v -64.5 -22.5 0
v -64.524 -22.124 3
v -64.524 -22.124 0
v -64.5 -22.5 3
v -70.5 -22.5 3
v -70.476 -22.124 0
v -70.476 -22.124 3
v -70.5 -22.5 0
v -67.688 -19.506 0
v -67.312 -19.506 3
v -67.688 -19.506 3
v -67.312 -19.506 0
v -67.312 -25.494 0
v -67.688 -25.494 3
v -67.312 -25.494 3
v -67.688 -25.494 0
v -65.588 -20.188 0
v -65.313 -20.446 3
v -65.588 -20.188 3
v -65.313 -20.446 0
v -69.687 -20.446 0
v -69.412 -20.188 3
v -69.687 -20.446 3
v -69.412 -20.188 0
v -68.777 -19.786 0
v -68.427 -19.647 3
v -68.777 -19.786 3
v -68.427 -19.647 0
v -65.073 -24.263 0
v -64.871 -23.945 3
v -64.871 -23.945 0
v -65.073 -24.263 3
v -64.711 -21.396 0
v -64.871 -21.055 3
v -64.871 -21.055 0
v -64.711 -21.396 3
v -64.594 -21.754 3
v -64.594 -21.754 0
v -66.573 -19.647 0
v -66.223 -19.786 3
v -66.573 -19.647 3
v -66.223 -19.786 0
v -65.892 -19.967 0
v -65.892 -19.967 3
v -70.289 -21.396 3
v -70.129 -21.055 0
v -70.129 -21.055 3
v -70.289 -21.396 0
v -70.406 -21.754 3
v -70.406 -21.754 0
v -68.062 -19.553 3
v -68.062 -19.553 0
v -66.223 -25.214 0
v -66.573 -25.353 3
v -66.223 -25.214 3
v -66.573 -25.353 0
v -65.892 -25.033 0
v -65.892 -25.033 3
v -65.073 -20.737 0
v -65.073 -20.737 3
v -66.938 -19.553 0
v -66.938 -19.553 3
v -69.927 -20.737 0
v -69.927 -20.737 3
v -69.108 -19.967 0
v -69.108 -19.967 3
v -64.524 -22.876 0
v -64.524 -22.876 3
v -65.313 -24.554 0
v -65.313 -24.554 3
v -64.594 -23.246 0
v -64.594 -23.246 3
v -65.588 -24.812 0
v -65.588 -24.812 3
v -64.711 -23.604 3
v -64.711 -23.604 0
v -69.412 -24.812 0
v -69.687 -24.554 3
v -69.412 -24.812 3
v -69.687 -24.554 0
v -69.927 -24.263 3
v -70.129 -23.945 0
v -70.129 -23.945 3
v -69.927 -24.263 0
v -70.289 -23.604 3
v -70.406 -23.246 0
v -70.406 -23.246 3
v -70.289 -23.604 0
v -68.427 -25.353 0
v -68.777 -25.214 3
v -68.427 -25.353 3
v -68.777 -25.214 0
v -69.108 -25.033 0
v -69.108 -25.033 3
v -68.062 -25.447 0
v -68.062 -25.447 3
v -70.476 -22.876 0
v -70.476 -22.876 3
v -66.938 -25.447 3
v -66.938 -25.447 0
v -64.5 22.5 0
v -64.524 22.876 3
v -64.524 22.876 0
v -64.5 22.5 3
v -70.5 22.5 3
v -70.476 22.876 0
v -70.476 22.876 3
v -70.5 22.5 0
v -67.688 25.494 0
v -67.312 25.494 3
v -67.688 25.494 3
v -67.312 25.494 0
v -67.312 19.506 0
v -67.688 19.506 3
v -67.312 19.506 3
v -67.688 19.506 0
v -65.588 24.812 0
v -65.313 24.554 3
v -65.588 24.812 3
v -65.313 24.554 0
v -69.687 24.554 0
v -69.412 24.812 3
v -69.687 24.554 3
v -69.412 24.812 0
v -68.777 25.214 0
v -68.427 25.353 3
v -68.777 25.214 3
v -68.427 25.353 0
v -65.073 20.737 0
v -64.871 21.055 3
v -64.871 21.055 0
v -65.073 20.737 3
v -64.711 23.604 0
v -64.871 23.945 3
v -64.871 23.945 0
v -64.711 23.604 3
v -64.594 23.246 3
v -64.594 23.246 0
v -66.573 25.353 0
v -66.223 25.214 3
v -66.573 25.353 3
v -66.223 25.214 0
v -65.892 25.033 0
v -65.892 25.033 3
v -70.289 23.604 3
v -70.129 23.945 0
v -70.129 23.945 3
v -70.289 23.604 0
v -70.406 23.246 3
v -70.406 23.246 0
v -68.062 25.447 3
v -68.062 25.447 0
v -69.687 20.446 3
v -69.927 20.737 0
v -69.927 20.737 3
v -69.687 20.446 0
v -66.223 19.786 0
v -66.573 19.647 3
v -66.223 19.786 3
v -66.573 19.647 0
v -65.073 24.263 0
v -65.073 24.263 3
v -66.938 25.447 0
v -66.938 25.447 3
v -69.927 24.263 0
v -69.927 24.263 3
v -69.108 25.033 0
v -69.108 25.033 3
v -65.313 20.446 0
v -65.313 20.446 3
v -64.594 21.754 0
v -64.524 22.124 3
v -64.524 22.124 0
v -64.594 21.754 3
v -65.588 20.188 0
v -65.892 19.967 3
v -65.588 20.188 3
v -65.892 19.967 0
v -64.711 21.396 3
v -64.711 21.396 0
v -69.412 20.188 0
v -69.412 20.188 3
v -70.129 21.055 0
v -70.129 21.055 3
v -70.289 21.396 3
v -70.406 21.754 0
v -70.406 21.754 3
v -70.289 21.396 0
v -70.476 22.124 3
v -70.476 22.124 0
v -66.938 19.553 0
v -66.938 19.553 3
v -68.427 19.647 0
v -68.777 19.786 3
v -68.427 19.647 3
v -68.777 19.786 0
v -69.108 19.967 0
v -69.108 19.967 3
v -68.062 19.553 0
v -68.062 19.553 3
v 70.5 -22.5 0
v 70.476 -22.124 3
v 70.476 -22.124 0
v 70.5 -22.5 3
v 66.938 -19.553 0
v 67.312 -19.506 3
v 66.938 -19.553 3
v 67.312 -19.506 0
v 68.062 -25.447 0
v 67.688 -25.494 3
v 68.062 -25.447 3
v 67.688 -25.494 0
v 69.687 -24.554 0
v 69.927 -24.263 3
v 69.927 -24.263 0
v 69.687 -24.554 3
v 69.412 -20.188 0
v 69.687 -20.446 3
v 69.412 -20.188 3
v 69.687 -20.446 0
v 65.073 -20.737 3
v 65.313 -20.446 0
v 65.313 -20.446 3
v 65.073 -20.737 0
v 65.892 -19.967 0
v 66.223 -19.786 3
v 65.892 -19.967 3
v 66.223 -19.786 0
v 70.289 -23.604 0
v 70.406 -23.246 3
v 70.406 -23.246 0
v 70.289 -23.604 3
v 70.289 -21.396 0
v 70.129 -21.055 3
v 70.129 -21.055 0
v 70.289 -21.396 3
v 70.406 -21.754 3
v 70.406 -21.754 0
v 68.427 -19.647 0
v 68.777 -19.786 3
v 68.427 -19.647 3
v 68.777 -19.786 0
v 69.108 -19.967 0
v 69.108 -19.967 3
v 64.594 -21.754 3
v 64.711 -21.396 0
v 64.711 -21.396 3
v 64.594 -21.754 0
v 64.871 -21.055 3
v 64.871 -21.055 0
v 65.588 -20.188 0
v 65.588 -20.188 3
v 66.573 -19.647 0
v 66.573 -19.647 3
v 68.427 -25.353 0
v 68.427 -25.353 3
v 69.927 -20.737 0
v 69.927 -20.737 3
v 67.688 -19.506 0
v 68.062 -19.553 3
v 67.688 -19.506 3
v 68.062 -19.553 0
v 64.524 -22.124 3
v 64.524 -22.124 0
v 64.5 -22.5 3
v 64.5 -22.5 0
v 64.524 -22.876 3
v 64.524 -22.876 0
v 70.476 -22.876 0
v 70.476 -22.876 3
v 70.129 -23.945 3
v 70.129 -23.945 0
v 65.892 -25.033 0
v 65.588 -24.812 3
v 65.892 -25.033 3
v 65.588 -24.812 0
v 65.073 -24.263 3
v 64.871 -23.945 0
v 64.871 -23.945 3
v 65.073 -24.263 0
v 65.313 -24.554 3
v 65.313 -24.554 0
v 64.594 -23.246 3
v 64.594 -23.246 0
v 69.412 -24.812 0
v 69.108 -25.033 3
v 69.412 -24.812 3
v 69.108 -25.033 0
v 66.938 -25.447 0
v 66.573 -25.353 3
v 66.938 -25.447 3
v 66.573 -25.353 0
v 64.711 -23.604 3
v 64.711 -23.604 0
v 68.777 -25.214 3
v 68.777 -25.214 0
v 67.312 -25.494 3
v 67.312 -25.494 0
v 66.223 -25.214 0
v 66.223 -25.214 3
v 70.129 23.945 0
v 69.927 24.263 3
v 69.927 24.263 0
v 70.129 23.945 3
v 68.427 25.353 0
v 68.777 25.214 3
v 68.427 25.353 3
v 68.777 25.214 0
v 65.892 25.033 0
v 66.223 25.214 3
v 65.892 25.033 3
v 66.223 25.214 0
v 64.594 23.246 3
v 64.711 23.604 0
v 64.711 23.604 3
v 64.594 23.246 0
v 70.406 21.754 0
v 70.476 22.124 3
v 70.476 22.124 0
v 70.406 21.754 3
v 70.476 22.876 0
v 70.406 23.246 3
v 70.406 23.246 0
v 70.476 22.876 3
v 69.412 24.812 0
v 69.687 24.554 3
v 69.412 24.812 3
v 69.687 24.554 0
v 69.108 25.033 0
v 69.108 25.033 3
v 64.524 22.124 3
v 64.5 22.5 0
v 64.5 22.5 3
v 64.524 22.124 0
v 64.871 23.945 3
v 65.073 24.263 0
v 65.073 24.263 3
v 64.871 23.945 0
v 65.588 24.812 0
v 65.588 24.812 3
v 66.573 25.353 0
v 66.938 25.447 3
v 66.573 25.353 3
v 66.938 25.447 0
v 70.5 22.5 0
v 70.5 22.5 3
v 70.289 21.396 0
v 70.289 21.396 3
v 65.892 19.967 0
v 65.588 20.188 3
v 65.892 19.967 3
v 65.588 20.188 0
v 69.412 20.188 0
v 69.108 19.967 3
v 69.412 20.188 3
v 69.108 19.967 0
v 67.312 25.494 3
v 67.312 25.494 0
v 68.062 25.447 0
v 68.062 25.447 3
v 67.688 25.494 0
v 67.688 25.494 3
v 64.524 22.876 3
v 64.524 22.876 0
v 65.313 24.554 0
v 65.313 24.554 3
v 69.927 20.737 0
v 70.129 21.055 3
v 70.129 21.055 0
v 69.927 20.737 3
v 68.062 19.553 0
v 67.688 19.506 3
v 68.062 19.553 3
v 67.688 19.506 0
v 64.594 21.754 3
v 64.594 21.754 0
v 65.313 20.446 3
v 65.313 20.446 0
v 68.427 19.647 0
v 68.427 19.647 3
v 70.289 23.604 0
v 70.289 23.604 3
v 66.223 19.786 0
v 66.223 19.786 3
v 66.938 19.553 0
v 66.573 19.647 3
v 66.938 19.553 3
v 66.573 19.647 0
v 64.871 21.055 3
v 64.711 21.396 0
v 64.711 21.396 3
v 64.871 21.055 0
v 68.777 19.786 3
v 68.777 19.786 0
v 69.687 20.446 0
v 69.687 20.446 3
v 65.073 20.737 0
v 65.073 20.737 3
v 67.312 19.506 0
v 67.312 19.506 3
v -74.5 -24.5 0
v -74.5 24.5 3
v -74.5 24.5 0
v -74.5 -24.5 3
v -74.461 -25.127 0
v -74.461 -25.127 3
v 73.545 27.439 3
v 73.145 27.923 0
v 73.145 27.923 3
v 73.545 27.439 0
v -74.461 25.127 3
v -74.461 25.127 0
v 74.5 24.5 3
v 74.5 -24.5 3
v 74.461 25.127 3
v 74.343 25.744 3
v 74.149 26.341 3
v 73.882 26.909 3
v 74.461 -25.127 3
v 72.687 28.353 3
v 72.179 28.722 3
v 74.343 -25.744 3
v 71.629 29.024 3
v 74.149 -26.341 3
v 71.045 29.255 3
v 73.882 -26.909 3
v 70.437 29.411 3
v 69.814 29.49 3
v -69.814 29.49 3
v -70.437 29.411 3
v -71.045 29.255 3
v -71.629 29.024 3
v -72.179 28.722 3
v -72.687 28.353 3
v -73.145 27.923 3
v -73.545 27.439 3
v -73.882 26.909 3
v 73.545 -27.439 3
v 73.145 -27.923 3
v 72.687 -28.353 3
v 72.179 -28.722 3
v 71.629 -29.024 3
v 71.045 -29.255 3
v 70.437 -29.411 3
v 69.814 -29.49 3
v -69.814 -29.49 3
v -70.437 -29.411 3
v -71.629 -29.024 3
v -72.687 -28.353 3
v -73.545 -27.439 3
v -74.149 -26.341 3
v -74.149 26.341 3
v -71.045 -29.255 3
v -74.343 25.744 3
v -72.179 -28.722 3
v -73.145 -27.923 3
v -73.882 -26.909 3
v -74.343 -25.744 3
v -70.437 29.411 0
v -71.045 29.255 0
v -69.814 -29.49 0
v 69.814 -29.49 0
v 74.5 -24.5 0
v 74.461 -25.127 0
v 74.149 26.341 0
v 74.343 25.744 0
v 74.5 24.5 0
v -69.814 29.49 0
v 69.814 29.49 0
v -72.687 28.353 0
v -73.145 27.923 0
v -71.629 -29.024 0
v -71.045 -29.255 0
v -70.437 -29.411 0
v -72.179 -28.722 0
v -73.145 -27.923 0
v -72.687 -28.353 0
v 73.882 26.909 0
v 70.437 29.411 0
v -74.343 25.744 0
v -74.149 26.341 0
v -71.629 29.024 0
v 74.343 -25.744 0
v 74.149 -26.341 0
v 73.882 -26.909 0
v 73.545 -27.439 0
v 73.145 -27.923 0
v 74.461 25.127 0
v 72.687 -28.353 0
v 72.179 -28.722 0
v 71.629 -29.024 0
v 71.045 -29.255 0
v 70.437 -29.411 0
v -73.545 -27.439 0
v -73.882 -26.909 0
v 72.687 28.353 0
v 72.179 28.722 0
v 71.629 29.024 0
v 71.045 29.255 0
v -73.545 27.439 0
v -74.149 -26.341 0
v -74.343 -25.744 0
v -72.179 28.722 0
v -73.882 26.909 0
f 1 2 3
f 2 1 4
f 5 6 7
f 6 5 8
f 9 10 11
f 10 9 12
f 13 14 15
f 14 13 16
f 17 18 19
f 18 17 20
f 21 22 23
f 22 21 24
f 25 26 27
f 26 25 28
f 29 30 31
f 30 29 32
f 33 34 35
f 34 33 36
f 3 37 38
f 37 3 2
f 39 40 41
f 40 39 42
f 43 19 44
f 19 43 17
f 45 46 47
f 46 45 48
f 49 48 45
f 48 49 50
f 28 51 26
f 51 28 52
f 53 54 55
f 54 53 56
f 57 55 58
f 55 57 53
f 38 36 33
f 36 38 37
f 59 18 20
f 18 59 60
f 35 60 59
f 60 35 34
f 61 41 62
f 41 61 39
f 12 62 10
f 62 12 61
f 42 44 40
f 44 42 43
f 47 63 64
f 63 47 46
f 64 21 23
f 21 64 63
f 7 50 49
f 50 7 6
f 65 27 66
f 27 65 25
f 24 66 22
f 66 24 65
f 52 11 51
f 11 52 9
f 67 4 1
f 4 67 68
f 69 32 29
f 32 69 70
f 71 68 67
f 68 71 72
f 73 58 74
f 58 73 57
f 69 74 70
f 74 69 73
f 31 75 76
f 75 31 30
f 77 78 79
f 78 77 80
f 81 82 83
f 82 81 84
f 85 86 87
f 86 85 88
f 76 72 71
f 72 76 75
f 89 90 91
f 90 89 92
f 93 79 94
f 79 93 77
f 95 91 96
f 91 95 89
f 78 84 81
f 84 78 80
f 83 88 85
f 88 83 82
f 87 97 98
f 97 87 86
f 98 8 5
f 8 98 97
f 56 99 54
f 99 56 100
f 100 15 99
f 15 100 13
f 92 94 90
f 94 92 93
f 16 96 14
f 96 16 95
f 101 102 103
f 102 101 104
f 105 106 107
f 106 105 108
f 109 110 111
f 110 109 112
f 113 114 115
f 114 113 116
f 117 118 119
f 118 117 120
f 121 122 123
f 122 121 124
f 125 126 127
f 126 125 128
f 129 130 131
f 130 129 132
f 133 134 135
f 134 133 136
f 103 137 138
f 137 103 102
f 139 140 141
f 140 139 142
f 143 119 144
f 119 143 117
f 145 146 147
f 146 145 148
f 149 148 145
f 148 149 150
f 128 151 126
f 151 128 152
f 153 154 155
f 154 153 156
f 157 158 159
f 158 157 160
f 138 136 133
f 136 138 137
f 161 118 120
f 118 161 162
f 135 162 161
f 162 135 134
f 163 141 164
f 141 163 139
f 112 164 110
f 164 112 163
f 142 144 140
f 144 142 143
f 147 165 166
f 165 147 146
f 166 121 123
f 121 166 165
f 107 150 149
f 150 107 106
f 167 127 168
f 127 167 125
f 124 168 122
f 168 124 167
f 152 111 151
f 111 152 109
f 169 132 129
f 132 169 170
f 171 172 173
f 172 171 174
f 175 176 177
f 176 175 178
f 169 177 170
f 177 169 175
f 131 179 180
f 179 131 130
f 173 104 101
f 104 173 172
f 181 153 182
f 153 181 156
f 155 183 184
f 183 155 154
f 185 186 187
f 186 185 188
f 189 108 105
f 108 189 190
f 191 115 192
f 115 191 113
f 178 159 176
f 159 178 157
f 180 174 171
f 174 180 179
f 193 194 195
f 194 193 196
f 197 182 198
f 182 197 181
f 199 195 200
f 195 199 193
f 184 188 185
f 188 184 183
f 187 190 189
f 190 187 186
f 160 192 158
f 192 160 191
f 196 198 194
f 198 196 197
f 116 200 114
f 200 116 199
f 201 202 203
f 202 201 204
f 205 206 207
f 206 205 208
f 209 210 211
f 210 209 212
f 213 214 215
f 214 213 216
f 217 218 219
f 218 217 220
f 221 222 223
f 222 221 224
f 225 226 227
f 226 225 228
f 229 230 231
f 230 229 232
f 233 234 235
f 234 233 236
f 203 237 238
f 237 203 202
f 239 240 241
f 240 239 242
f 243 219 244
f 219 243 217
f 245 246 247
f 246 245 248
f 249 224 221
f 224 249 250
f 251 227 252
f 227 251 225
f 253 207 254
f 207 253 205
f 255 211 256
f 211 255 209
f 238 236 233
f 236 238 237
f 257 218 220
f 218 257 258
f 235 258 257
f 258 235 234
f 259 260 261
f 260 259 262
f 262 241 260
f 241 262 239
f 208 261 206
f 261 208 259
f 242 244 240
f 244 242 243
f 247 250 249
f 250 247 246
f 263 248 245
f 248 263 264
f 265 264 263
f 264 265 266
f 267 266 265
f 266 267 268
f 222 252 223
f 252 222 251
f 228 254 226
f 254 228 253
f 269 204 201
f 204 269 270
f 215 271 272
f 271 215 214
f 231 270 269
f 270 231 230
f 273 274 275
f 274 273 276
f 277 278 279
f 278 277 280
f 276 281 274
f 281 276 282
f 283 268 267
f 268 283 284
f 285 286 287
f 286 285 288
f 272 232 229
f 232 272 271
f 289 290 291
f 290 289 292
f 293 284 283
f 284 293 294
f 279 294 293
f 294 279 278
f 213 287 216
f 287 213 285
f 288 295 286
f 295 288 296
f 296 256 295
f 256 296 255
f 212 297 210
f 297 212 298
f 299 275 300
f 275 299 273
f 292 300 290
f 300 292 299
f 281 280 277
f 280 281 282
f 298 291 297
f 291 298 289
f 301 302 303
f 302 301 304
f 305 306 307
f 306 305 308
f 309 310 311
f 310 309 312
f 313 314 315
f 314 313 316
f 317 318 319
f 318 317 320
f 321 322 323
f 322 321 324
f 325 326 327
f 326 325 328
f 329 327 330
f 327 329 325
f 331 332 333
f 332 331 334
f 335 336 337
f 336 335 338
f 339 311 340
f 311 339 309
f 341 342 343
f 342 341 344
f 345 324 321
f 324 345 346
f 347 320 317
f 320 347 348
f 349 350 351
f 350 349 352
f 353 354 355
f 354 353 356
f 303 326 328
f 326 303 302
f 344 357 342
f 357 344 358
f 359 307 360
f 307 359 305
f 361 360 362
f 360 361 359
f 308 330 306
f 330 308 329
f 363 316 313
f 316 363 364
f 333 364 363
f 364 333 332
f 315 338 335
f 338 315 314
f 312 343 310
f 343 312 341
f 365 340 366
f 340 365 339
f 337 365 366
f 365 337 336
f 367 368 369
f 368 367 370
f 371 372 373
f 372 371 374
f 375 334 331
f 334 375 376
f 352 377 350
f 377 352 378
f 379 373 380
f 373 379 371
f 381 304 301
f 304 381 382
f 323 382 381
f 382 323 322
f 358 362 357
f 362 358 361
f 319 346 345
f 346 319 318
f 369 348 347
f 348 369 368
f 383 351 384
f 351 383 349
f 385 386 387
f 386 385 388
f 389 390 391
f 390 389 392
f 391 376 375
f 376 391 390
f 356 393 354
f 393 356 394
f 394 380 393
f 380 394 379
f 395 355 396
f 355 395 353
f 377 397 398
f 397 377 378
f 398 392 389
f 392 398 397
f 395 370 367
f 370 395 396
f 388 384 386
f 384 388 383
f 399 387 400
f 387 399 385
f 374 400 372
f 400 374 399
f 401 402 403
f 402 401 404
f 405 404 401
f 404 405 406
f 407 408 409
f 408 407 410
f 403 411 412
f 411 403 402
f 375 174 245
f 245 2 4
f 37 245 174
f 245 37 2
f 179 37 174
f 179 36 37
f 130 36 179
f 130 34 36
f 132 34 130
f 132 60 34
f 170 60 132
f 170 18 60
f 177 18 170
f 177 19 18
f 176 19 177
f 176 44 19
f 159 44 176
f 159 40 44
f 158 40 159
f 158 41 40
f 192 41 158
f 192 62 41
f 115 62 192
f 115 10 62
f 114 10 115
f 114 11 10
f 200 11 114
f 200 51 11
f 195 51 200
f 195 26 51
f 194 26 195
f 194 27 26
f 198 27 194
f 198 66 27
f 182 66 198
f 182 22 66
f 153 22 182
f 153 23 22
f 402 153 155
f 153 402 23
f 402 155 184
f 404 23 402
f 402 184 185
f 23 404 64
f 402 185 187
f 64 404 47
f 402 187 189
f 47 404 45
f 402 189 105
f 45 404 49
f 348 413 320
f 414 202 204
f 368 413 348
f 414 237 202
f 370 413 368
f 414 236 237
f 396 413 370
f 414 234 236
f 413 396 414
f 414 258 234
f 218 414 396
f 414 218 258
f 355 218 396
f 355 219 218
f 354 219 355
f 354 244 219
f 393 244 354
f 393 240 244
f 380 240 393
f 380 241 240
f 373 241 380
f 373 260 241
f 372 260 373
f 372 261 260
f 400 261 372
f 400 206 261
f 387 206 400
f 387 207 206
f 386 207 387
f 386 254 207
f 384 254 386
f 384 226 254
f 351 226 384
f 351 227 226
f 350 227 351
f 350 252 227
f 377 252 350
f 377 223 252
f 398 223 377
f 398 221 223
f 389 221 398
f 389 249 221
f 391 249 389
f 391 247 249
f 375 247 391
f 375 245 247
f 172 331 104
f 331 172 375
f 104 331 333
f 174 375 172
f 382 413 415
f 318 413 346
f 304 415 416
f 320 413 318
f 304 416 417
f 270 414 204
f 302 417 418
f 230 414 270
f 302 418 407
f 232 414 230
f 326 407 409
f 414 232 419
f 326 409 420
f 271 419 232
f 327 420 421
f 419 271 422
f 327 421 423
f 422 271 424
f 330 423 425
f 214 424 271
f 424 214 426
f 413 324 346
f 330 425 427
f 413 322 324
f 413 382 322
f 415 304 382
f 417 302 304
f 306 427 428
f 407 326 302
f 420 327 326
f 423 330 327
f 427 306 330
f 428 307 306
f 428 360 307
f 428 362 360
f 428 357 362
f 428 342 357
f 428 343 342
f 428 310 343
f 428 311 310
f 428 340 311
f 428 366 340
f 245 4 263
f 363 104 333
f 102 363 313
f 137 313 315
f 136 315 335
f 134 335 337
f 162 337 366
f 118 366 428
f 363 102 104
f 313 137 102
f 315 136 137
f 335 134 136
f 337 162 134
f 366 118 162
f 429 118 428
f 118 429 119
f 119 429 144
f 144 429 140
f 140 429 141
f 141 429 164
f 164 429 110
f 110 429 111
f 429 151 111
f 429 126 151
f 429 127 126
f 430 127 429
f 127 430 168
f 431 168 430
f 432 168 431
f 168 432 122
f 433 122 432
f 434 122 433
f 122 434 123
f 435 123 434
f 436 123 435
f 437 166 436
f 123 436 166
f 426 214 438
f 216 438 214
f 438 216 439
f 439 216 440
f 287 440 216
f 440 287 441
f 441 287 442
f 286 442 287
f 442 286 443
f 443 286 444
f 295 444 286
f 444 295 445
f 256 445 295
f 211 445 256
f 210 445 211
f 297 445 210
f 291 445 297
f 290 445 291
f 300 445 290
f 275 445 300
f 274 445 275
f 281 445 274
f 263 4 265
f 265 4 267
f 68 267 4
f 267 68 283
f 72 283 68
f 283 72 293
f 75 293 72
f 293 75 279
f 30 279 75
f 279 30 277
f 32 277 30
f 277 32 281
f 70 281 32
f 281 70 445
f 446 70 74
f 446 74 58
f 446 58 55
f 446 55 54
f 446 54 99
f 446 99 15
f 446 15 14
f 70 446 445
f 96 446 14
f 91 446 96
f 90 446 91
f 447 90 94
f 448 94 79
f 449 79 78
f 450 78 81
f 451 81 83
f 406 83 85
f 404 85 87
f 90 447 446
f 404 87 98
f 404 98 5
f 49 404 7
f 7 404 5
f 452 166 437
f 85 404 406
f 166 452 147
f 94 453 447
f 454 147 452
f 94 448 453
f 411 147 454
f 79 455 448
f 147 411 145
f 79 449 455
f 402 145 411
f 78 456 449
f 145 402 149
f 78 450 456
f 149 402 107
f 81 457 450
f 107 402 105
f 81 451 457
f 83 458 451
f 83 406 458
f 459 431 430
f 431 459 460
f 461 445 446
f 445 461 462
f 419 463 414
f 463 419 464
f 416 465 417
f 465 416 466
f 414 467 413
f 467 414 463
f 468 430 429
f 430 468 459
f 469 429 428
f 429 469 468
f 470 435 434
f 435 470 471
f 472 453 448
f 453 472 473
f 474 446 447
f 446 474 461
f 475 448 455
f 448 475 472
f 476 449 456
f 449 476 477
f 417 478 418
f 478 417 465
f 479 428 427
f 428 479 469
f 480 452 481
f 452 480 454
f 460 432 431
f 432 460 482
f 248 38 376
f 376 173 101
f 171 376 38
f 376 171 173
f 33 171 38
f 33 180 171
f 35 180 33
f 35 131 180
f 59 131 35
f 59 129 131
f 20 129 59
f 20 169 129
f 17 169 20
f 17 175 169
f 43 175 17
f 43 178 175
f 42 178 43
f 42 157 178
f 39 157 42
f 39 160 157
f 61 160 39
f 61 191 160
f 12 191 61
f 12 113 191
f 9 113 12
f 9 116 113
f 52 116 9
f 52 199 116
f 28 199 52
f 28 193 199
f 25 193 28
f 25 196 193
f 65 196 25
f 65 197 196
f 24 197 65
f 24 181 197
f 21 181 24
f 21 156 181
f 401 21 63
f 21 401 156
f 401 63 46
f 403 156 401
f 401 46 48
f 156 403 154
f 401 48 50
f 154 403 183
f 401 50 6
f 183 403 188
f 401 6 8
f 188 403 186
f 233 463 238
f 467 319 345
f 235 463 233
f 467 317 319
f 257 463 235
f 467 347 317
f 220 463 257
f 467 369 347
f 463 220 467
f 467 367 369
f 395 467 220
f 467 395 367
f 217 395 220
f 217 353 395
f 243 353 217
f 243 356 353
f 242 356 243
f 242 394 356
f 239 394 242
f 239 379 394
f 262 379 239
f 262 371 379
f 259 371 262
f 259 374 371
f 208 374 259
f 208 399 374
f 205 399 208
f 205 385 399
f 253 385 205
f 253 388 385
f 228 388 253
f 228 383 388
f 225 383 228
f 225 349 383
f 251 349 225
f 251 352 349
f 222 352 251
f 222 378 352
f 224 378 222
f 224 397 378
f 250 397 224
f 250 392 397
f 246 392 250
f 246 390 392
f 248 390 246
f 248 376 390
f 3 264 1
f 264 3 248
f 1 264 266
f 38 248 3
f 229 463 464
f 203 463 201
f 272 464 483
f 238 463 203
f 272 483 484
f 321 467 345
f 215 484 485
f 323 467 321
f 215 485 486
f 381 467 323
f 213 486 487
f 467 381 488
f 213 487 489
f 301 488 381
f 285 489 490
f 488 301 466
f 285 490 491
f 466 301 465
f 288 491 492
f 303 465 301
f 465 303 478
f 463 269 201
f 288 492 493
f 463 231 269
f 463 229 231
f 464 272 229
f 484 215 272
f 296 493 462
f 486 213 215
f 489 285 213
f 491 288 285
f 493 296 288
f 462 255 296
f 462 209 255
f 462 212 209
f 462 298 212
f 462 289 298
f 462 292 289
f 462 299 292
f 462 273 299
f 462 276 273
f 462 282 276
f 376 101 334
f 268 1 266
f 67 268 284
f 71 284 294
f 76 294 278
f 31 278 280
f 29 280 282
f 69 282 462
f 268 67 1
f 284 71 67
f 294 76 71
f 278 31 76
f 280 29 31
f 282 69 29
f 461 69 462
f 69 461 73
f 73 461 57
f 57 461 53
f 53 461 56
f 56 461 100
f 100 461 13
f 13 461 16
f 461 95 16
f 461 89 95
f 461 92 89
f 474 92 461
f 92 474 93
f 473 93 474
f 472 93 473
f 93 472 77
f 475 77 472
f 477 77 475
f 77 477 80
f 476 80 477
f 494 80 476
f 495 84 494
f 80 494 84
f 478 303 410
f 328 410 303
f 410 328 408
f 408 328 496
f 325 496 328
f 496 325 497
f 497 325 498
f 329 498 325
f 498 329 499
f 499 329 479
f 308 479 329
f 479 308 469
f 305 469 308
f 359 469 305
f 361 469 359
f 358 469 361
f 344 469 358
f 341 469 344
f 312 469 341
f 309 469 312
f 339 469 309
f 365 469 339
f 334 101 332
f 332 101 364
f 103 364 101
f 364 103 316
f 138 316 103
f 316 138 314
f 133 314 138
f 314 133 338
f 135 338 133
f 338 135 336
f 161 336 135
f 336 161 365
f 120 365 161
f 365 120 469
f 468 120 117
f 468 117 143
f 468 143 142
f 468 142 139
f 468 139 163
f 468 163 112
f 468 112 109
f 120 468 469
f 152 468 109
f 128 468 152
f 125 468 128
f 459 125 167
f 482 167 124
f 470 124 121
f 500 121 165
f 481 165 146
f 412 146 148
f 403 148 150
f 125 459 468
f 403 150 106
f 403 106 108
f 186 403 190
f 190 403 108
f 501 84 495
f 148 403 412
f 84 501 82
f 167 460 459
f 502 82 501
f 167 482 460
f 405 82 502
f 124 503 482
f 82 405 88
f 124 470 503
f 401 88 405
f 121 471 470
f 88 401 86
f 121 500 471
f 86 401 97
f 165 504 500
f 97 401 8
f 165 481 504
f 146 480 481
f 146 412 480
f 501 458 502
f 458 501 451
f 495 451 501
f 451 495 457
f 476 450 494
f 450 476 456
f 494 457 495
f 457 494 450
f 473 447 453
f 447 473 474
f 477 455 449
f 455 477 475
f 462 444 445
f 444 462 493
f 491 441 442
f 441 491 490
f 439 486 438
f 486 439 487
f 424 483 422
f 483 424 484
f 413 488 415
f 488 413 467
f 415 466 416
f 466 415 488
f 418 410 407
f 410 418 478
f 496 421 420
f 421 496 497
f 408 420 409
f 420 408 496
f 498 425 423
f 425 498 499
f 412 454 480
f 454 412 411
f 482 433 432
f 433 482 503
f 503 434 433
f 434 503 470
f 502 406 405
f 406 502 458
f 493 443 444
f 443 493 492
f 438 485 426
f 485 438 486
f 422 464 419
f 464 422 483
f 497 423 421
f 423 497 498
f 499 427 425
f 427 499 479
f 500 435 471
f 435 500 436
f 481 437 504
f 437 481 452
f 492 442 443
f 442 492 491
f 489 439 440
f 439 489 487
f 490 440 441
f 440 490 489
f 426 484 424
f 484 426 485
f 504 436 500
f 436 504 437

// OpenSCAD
$fn = 50;


difference() {
	union() {
		hull() {
			translate(v = [-69.5000000000, 24.5000000000, 0]) {
				cylinder(h = 3, r = 5);
			}
			translate(v = [69.5000000000, 24.5000000000, 0]) {
				cylinder(h = 3, r = 5);
			}
			translate(v = [-69.5000000000, -24.5000000000, 0]) {
				cylinder(h = 3, r = 5);
			}
			translate(v = [69.5000000000, -24.5000000000, 0]) {
				cylinder(h = 3, r = 5);
			}
		}
	}
	union() {
		translate(v = [-67.5000000000, -22.5000000000, -100.0000000000]) {
			cylinder(h = 200, r = 3.0000000000);
		}
		translate(v = [-67.5000000000, 22.5000000000, -100.0000000000]) {
			cylinder(h = 200, r = 3.0000000000);
		}
		translate(v = [67.5000000000, -22.5000000000, -100.0000000000]) {
			cylinder(h = 200, r = 3.0000000000);
		}
		translate(v = [67.5000000000, 22.5000000000, -100.0000000000]) {
			cylinder(h = 200, r = 3.0000000000);
		}
	}
}
